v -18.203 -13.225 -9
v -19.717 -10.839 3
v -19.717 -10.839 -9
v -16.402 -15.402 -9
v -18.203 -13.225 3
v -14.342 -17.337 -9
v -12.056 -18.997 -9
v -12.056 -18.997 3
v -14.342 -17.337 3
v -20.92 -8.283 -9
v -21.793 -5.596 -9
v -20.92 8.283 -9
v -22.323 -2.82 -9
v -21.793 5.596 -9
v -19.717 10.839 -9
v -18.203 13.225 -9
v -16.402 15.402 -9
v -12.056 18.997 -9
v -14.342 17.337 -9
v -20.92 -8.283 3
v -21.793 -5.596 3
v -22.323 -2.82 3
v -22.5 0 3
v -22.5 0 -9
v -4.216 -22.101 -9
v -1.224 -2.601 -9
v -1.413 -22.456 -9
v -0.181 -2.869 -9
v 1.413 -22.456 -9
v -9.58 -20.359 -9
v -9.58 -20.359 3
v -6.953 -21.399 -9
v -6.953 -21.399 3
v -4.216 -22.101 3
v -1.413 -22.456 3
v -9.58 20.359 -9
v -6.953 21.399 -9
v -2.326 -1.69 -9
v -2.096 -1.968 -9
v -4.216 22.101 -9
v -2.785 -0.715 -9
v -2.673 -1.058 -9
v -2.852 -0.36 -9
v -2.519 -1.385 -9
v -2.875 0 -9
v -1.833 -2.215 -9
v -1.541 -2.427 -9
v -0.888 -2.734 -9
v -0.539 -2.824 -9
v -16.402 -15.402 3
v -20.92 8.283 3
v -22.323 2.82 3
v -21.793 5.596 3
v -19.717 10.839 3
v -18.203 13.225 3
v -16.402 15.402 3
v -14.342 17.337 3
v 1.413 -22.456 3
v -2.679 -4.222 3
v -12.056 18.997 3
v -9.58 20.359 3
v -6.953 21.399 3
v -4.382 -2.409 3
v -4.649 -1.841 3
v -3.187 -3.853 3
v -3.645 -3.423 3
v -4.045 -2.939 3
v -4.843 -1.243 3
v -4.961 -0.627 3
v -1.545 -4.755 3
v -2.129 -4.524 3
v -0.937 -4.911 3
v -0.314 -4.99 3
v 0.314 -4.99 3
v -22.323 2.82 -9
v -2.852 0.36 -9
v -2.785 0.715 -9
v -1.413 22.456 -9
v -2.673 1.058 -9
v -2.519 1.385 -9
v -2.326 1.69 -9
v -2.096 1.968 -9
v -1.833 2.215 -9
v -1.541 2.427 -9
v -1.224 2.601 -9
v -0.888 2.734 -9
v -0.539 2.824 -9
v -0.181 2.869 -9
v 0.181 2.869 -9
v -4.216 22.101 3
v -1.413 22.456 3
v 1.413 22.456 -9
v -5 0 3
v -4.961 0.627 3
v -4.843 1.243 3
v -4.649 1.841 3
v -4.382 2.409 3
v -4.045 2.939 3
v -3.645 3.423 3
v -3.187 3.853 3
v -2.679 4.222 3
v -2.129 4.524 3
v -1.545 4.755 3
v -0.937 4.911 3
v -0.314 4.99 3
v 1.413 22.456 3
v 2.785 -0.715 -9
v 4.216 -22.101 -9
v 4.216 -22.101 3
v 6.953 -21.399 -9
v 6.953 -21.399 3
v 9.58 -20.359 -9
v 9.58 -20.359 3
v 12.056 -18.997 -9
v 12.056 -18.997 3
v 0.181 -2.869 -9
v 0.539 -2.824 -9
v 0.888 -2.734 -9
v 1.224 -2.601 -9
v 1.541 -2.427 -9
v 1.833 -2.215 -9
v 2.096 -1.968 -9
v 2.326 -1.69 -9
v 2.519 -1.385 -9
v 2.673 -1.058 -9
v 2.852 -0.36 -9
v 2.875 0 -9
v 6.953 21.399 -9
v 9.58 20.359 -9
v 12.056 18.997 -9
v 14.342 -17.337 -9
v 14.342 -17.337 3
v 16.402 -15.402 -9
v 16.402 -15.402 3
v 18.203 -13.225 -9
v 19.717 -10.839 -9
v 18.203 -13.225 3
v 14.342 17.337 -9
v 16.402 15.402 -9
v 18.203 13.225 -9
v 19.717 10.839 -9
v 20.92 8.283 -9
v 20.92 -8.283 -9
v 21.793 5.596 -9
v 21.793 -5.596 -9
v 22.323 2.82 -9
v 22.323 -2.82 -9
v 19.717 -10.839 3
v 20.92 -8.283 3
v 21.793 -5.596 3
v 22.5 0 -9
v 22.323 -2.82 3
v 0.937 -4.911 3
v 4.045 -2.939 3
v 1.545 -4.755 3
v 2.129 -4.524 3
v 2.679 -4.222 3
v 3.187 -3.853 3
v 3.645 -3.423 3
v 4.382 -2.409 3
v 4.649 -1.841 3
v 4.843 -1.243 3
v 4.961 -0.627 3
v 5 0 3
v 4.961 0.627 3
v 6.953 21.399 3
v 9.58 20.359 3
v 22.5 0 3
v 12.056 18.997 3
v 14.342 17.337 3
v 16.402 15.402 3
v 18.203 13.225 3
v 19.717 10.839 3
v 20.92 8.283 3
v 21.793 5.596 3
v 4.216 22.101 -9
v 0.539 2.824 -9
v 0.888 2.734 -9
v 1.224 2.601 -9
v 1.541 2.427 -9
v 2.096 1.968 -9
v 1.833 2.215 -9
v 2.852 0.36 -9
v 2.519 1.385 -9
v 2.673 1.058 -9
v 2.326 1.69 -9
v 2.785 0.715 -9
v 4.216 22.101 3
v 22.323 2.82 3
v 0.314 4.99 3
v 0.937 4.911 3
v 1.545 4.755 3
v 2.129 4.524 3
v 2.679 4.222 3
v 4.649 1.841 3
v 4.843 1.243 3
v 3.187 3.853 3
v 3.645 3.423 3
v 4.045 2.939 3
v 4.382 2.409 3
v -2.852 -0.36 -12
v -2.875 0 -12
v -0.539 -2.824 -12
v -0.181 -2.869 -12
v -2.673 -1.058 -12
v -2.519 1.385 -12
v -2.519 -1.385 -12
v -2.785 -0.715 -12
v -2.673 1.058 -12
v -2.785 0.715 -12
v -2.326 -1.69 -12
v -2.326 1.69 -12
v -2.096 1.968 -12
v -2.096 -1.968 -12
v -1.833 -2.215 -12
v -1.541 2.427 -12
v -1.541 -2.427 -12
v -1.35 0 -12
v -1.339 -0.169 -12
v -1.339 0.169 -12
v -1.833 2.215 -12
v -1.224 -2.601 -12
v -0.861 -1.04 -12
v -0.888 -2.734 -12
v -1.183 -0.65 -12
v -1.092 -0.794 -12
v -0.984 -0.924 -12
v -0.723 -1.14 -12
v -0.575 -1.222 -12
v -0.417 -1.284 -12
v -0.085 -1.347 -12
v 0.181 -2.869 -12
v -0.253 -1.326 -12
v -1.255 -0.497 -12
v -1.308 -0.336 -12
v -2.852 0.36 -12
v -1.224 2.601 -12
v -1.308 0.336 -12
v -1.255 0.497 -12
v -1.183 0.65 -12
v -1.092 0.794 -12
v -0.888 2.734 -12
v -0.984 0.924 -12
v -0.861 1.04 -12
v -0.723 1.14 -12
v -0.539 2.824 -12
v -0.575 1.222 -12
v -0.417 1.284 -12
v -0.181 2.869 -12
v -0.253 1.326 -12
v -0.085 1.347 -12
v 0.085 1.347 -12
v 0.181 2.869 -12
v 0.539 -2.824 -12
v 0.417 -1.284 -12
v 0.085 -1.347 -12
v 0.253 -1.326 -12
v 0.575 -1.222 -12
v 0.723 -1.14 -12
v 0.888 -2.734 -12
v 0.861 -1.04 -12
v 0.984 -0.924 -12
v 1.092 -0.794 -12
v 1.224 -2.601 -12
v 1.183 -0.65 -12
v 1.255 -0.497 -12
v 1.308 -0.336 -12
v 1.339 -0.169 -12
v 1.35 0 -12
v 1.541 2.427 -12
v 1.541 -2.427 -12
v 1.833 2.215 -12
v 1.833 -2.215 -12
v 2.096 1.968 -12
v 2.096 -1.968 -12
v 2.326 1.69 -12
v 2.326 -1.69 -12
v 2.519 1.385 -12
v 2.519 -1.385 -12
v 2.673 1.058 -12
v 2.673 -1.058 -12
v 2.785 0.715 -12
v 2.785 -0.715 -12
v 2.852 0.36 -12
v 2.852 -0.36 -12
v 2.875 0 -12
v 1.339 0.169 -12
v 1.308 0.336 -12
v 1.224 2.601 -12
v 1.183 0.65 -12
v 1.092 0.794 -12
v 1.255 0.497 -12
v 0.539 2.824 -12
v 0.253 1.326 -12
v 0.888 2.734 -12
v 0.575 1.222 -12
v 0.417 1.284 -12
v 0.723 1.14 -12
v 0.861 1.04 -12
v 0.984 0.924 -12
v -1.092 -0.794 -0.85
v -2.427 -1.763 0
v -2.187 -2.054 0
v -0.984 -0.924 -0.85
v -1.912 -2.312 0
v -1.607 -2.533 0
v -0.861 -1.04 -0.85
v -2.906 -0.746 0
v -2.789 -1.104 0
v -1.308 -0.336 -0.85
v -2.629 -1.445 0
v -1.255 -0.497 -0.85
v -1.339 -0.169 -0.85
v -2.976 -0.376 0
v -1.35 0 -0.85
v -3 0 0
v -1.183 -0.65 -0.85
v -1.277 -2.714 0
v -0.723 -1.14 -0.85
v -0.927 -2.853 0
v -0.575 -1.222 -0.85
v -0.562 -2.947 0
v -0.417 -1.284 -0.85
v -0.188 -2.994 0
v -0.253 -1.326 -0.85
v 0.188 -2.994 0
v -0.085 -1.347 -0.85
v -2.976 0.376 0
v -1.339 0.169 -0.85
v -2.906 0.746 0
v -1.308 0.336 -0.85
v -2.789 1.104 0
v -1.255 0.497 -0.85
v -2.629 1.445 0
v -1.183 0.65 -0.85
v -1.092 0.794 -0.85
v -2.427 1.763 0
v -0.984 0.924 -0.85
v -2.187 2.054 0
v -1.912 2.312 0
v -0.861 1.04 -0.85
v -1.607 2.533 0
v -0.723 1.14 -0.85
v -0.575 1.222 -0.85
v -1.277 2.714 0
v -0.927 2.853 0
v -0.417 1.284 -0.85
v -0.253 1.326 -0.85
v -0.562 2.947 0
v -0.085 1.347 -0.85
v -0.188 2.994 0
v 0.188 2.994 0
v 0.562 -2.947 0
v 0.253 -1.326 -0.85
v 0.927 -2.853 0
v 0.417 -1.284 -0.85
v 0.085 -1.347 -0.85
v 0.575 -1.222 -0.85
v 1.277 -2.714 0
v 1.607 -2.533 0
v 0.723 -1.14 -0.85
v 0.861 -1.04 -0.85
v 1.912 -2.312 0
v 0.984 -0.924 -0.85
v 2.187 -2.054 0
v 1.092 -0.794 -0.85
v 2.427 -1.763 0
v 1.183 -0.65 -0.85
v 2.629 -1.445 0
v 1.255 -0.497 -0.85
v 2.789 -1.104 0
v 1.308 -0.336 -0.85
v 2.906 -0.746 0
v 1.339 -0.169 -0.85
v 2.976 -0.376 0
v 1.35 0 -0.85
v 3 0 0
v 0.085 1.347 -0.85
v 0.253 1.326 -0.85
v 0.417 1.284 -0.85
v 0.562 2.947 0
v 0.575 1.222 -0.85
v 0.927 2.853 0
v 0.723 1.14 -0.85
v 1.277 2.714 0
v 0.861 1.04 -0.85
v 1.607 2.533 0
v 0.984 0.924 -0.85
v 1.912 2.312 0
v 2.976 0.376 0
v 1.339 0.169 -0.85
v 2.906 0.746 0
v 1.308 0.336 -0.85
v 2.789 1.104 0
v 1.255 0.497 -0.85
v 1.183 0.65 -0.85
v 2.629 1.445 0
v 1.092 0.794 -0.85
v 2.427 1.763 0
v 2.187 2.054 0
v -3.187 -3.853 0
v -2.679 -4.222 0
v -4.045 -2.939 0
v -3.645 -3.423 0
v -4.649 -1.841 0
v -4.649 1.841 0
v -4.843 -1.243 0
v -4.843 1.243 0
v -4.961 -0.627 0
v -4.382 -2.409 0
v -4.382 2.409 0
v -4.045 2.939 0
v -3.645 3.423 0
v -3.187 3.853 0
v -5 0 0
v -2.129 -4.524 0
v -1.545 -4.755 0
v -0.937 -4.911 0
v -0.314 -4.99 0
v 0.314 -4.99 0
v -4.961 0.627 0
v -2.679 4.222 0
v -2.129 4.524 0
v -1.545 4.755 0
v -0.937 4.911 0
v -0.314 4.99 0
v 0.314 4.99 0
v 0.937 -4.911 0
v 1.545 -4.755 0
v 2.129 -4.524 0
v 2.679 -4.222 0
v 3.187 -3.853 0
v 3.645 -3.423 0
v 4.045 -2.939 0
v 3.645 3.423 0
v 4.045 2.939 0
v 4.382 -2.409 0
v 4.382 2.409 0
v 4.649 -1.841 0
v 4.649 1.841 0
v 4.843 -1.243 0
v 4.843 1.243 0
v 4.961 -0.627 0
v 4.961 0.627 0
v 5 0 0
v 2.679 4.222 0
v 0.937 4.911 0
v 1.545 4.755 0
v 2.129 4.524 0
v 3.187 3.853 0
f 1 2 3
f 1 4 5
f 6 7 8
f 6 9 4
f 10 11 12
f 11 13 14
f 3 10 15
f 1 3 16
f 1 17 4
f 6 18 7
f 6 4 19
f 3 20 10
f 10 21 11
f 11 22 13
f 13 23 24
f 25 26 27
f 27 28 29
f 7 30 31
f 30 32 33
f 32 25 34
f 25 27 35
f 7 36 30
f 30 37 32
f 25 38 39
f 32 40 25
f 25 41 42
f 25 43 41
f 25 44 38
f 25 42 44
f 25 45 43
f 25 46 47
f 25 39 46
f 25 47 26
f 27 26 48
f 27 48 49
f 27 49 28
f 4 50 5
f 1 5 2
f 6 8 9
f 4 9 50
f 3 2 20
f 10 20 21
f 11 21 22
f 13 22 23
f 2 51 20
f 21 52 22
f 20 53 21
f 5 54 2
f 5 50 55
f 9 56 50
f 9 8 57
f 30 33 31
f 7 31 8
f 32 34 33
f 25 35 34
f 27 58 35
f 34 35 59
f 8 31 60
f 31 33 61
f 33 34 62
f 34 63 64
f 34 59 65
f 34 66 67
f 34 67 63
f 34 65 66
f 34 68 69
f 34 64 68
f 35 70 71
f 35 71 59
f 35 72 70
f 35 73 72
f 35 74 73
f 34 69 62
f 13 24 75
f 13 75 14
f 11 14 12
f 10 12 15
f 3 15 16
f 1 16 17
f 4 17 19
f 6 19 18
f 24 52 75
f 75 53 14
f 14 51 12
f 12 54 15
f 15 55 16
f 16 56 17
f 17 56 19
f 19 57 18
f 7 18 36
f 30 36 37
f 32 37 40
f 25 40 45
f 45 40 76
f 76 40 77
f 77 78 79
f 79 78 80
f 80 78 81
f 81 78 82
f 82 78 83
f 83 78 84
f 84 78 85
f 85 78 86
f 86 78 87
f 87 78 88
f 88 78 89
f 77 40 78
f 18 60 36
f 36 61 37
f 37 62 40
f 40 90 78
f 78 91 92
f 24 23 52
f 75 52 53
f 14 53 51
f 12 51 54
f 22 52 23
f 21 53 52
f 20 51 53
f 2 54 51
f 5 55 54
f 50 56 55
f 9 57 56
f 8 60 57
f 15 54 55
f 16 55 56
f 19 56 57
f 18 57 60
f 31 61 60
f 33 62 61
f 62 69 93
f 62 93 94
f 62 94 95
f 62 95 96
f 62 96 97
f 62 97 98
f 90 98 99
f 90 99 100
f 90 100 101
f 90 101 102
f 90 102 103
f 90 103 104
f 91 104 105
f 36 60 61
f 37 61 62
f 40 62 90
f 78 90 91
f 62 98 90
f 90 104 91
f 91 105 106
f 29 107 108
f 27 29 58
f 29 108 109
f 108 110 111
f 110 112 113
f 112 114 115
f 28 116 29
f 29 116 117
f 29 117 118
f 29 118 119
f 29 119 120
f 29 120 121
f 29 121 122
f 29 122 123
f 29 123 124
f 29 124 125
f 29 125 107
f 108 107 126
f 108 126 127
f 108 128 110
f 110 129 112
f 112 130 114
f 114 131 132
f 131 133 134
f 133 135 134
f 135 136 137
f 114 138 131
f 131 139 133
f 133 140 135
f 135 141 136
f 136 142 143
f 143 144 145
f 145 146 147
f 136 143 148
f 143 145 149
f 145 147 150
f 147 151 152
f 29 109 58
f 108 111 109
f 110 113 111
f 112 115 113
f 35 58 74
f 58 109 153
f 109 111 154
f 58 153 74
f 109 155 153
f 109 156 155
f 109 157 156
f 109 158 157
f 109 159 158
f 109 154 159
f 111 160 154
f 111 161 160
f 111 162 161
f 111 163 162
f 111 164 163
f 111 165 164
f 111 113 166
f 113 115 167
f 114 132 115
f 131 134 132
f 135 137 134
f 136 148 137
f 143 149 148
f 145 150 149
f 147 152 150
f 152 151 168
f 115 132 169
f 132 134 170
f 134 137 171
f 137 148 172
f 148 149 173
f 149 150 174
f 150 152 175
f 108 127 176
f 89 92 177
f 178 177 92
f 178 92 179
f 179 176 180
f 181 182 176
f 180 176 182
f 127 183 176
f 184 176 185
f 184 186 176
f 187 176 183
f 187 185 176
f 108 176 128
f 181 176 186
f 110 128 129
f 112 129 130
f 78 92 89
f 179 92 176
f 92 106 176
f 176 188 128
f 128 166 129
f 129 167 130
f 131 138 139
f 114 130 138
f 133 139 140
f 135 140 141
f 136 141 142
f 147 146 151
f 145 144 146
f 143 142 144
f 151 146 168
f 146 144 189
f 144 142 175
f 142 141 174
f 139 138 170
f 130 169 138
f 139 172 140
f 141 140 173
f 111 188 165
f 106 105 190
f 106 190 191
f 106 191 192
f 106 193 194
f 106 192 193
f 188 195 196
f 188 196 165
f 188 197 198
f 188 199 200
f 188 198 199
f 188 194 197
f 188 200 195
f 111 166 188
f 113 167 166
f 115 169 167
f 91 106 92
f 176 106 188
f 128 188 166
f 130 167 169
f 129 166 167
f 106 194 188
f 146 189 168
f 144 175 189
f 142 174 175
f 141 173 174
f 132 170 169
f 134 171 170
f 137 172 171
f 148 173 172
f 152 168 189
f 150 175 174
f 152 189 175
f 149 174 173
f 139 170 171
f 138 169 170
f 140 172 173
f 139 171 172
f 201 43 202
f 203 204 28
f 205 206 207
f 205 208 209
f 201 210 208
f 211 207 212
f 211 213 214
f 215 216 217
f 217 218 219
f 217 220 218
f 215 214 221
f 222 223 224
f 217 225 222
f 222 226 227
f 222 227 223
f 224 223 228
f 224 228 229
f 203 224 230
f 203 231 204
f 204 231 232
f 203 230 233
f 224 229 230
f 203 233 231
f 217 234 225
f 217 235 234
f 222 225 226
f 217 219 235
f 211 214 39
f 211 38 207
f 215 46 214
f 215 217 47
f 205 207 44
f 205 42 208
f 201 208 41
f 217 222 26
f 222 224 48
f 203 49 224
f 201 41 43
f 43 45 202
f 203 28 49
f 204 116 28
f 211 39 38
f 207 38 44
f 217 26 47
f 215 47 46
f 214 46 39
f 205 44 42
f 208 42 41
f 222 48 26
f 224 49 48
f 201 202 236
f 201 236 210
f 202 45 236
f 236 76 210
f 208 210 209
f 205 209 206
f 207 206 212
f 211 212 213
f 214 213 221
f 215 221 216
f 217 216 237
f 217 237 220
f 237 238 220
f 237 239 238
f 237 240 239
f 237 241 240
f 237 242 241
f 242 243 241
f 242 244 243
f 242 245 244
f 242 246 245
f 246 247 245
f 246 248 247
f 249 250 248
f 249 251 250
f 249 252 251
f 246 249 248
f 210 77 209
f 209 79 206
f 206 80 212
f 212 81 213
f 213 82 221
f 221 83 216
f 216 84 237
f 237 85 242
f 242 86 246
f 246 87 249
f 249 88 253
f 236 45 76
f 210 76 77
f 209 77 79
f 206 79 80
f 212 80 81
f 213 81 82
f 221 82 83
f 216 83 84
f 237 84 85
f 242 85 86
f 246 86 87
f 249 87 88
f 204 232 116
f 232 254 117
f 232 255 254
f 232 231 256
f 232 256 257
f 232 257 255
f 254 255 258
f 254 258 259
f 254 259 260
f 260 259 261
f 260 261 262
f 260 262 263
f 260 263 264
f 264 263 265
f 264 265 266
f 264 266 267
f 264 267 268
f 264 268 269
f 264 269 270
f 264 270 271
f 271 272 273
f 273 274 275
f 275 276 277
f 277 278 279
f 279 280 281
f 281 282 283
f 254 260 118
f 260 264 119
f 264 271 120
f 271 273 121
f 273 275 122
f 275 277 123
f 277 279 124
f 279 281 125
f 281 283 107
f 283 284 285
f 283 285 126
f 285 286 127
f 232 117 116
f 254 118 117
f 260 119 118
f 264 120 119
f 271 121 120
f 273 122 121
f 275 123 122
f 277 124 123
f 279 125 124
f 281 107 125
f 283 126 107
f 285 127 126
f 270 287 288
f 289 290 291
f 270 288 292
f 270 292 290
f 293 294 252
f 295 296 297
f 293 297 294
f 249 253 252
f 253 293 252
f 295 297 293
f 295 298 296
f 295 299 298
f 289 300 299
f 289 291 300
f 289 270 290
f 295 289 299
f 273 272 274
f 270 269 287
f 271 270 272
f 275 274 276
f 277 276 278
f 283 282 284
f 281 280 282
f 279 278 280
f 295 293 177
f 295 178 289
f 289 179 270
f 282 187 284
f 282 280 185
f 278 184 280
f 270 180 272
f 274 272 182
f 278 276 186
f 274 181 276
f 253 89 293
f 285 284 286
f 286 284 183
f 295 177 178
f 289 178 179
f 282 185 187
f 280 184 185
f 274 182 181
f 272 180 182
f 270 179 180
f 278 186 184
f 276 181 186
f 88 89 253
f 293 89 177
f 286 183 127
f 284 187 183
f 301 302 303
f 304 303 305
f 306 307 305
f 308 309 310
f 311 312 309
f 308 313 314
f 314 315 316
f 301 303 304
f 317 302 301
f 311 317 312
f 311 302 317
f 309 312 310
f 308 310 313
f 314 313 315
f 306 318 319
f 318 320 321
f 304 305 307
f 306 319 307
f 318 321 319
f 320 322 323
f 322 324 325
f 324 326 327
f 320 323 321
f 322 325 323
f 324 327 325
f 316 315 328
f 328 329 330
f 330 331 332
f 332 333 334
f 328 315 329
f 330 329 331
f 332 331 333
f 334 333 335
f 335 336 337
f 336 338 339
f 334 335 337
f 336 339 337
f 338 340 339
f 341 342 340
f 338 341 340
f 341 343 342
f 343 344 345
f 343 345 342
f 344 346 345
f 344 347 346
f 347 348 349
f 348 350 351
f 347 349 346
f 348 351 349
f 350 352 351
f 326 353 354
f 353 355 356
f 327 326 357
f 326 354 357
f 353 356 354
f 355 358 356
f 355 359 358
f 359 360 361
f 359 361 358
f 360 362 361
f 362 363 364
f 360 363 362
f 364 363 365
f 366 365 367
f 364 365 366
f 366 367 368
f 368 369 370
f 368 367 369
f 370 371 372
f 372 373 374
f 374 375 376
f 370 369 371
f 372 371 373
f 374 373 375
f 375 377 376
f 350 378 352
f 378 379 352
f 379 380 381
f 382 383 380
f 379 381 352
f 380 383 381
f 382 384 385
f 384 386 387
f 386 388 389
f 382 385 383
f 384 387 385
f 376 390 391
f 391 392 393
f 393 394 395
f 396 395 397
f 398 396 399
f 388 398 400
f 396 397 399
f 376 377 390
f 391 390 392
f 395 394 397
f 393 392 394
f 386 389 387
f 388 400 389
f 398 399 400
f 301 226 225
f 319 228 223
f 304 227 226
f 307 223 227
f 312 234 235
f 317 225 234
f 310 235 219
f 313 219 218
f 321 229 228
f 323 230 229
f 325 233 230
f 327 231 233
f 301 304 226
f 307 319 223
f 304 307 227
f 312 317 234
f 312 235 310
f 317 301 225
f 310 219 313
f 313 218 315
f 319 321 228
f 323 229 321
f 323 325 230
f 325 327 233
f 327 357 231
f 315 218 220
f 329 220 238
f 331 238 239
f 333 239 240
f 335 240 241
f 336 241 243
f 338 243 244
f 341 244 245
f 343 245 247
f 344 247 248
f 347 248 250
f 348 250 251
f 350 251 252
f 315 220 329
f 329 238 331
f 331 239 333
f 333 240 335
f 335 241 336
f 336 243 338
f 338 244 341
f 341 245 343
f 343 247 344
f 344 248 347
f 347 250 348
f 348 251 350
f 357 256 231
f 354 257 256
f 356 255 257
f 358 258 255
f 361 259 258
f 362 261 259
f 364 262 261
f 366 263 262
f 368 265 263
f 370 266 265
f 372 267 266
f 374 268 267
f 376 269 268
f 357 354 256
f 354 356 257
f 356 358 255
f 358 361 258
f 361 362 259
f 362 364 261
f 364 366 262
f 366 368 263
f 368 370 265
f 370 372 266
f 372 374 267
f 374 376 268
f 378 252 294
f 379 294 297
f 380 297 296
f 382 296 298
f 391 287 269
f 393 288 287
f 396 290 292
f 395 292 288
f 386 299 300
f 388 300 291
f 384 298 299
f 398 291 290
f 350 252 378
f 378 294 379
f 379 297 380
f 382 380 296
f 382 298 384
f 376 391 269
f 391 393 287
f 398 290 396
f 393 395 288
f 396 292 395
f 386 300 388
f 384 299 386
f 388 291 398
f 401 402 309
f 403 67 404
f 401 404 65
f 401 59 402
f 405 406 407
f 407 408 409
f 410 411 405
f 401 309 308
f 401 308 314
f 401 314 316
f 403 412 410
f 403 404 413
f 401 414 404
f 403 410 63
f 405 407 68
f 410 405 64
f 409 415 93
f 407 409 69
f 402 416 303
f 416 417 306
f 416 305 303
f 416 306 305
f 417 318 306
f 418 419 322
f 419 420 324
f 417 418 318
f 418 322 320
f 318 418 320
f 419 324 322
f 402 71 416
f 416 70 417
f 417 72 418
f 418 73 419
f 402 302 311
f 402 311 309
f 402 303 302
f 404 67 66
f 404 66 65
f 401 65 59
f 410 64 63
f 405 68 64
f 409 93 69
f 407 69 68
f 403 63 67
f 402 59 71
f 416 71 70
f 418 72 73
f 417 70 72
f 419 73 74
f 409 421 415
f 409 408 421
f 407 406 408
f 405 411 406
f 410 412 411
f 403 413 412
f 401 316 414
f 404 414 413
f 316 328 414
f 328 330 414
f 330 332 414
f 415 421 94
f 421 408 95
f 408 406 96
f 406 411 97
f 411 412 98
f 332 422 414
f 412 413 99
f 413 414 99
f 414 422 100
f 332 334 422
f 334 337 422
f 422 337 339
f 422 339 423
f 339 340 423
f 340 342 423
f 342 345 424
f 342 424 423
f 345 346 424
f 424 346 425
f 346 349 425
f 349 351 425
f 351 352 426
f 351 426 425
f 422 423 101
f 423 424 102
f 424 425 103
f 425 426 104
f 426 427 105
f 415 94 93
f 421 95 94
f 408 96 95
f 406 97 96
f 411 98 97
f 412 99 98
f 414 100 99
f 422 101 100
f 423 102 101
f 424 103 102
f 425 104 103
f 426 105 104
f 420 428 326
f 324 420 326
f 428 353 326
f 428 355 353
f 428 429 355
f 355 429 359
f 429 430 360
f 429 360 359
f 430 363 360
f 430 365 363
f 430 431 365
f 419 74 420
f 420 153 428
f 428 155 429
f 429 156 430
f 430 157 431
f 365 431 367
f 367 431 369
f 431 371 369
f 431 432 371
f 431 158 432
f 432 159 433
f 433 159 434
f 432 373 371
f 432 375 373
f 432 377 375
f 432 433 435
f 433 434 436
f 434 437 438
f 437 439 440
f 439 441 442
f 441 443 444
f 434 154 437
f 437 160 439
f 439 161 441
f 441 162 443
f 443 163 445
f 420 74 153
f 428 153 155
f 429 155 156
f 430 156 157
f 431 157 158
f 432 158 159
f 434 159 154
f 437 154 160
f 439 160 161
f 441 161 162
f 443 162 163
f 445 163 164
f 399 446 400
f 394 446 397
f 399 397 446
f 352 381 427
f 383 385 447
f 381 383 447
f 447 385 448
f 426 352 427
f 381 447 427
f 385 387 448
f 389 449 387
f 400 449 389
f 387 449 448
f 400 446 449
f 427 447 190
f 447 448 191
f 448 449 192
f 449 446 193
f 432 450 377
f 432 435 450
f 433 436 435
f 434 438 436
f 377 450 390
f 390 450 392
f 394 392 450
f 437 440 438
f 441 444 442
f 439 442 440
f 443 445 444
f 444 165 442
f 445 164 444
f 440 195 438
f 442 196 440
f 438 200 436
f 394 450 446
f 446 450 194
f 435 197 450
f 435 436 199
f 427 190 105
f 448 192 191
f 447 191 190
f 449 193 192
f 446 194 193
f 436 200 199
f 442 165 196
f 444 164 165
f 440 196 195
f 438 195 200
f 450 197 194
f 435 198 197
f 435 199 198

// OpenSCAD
$fn = 50;

difference() {
	union() {
		translate(v = [0, 0, -9.0]) {
			cylinder(h = 12, r = 22.5);
		}
		#translate(v = [0, 0, -12.0]) {
			cylinder(h = 12, r = 2.875);
		}
	}
	union() {
		translate(v = [0, 0, 0]) {
			rotate(a = [0, 0, 0]) {
				difference() {
					union() {
						translate(v = [0, 0, -12.0]) {
							cylinder(h = 12, r = 1.0);
						}
						translate(v = [0, 0, -0.85]) {
							cylinder(h = 0.85, r1 = 1.35, r2 = 3.0);
						}
						translate(v = [0, 0, -12.0]) {
							cylinder(h = 12, r = 1.35);
						}
						translate(v = [0, 0, -12.0]) {
							cylinder(h = 12, r = 1.0);
						}
					}
					union();
				}
			}
		}
		#cylinder(h = 3, r = 5.0);
	}
}
